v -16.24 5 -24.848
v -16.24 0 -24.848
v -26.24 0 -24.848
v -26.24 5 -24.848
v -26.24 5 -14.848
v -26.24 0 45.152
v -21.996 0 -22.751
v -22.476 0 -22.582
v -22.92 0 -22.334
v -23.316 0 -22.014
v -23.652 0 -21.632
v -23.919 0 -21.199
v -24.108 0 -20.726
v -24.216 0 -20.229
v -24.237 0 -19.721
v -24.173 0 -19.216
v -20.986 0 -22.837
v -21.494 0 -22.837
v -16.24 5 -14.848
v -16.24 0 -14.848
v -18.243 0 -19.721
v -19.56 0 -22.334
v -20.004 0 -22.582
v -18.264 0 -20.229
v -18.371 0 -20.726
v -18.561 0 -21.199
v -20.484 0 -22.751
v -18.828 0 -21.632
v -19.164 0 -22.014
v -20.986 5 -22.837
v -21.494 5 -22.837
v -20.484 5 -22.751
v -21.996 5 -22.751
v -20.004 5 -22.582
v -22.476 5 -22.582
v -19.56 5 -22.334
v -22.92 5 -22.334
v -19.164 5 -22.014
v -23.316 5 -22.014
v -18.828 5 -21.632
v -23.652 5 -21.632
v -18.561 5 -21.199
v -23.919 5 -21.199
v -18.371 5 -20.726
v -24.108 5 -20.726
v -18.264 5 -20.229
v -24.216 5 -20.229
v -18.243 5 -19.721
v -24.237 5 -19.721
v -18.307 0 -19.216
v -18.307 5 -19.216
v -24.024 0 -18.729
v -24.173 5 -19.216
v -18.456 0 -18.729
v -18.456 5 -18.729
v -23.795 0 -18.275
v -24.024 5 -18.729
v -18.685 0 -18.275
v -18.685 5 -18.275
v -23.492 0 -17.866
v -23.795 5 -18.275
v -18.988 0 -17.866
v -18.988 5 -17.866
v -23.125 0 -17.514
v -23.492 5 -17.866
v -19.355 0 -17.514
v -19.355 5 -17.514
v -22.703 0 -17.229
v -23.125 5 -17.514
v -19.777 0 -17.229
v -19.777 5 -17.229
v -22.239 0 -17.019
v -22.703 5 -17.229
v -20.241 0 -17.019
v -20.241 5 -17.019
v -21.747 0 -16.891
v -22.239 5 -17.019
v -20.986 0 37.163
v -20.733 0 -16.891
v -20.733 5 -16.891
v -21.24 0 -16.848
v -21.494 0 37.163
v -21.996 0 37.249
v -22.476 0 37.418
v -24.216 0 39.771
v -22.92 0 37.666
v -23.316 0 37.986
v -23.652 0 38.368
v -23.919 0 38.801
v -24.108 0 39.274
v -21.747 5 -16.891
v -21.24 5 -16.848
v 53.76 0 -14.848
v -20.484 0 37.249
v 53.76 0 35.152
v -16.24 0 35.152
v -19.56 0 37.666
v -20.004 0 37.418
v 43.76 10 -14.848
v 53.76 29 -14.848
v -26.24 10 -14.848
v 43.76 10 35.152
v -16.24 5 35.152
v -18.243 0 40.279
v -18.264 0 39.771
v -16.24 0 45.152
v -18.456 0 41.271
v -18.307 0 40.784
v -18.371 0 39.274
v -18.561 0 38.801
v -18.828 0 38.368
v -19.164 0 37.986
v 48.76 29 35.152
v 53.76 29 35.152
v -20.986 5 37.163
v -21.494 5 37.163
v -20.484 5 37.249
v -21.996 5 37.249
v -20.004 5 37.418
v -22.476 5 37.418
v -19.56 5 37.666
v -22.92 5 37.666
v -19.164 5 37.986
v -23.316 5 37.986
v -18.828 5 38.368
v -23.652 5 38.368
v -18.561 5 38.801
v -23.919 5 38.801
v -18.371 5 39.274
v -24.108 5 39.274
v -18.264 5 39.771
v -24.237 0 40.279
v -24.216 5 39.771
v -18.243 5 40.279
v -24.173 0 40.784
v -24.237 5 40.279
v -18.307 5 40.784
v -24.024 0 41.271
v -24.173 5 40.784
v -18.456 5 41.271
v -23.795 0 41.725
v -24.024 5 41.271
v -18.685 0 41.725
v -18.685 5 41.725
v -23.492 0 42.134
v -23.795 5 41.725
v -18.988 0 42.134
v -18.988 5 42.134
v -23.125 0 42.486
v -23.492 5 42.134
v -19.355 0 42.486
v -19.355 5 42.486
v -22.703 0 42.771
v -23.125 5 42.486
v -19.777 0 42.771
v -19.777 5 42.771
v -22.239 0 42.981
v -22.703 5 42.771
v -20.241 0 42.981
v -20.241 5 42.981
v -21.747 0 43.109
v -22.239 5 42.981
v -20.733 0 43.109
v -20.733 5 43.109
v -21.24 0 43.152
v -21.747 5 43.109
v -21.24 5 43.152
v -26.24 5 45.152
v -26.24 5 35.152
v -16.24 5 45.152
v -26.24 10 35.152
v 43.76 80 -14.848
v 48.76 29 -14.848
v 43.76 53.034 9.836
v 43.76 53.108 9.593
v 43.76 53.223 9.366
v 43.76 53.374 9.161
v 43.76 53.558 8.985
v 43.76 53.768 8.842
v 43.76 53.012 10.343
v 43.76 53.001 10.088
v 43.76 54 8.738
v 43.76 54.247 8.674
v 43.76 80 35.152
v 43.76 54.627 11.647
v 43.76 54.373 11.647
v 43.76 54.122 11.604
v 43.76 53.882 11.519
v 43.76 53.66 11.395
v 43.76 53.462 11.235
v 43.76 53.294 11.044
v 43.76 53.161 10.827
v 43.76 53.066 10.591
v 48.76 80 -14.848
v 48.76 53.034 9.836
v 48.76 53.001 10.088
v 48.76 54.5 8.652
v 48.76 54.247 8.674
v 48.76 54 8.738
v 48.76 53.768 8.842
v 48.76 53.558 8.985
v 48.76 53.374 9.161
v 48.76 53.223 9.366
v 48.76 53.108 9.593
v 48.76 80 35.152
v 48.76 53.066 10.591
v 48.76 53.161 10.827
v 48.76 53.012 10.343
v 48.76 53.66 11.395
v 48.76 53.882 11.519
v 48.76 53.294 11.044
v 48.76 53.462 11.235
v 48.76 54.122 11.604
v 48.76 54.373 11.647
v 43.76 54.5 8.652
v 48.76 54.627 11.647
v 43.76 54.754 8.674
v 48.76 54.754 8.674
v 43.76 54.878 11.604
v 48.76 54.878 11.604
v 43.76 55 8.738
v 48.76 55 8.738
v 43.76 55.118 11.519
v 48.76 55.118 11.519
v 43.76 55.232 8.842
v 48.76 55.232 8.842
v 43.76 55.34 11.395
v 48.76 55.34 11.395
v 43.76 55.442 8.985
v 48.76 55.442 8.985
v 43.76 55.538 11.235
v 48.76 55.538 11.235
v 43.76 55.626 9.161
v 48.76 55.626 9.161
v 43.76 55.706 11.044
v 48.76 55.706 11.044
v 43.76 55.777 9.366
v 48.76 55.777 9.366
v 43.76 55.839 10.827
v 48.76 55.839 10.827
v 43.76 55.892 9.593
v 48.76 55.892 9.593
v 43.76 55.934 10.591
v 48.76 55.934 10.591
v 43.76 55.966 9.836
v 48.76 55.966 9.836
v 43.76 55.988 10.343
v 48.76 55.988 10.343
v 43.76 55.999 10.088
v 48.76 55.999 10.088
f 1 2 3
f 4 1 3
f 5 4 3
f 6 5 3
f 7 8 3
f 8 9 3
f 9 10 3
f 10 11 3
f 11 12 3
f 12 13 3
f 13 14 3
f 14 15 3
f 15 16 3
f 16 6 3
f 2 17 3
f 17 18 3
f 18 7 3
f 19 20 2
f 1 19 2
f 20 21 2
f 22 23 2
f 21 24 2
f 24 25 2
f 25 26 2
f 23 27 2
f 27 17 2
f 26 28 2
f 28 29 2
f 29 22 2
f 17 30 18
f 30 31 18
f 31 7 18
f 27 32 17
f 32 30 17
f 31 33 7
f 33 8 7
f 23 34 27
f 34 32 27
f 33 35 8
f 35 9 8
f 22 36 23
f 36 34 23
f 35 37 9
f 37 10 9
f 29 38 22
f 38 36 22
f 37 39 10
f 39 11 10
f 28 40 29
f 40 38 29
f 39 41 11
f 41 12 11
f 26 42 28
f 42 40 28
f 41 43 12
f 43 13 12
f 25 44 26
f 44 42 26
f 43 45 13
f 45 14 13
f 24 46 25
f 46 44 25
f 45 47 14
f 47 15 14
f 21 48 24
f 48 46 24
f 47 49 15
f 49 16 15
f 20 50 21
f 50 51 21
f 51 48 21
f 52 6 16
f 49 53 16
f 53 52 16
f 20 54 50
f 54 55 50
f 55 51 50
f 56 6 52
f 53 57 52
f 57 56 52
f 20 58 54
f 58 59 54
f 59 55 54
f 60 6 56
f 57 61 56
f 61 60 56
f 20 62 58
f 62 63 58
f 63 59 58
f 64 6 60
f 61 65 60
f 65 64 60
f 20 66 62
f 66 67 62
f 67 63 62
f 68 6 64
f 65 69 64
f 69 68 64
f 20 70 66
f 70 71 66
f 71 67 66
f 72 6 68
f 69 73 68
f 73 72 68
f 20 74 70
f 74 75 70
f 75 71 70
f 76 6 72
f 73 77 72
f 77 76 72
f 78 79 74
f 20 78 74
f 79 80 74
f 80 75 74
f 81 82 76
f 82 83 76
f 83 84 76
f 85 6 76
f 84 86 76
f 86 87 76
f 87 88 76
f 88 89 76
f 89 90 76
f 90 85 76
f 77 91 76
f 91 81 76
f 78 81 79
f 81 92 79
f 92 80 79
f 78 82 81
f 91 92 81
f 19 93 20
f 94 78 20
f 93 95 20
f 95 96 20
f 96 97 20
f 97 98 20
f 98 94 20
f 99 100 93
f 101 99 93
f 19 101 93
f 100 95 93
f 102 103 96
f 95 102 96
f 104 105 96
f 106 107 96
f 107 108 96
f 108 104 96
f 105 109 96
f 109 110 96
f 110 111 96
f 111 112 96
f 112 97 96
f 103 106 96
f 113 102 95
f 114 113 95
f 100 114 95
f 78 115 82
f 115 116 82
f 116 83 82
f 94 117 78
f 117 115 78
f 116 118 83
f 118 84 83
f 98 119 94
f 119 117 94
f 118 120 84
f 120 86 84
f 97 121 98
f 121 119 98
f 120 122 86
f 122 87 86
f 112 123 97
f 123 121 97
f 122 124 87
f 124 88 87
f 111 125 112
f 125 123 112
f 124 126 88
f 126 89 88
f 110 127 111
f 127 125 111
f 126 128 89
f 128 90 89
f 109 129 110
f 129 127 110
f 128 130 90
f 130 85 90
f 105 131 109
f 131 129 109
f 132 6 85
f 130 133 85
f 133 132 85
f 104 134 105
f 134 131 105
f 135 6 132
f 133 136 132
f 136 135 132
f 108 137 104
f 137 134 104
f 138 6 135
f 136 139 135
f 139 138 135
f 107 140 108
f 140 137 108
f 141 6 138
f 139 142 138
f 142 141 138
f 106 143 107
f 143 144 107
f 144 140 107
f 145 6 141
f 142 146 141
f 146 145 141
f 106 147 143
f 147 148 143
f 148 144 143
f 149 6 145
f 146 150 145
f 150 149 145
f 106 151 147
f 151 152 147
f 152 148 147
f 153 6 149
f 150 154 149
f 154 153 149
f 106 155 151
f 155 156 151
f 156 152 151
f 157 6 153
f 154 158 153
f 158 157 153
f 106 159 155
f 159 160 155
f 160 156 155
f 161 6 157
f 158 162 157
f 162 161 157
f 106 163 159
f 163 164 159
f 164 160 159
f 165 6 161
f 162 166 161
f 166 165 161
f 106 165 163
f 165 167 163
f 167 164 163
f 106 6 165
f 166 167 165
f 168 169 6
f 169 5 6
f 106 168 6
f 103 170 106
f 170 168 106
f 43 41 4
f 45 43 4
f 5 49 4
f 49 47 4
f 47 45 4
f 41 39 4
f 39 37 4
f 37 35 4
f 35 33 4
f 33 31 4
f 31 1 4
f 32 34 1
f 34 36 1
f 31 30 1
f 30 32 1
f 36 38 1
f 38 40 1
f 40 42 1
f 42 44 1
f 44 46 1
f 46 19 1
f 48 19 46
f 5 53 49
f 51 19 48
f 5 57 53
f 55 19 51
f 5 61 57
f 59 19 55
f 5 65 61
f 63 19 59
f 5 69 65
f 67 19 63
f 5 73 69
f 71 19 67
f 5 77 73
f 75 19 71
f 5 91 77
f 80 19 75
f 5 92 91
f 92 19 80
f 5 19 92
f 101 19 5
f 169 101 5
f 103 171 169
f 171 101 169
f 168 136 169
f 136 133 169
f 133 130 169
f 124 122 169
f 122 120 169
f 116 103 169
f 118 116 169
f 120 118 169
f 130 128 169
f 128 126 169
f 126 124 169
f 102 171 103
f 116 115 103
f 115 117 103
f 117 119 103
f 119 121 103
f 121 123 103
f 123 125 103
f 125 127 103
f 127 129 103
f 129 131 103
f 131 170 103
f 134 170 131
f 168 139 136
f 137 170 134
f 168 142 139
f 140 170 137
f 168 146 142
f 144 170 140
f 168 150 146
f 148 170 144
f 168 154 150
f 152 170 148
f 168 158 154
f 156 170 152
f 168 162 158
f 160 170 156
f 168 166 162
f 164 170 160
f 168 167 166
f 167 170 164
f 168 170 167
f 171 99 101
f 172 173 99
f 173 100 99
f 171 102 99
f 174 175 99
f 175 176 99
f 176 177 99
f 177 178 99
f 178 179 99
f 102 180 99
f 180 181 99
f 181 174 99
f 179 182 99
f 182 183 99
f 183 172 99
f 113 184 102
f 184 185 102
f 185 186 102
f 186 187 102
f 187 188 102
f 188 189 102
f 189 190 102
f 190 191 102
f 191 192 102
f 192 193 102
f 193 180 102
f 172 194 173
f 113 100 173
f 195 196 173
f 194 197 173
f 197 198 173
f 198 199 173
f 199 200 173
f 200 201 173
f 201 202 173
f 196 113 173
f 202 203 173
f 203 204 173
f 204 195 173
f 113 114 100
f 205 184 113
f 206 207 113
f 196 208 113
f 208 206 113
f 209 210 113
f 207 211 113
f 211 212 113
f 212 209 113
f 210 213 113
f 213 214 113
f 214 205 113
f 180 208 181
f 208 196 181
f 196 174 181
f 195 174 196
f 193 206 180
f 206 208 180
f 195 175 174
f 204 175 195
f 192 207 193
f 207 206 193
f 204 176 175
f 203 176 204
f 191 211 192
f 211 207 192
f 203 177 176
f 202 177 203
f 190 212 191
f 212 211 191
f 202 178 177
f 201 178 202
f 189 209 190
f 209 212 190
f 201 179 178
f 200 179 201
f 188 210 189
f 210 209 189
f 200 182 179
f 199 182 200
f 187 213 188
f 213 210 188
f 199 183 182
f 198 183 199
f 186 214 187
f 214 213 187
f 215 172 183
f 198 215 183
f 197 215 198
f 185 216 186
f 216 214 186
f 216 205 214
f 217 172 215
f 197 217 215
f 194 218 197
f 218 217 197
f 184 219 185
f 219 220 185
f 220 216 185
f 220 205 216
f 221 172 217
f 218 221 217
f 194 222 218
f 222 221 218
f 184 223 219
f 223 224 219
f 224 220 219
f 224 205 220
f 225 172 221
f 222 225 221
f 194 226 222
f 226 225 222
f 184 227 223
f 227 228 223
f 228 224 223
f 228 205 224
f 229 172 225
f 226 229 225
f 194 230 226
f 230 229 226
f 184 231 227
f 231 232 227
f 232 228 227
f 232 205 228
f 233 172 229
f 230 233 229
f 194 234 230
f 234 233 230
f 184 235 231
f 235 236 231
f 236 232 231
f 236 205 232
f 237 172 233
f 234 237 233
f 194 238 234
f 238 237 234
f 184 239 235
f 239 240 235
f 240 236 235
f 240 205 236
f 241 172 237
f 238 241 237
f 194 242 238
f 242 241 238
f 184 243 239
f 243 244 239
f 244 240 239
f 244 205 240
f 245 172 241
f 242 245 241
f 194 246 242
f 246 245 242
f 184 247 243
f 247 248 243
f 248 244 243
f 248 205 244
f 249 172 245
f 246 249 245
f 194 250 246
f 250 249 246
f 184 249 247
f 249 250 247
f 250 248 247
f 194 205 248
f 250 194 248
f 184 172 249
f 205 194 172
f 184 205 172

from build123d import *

# Parameters (mm, degrees)
SKETCH1_W           = 80
SKETCH1_H           = 50
BOSS_EXTRUDE1_DEPTH = 10
SKETCH2_W           = 10
SKETCH2_H           = 10
BOSS_EXTRUDE2_DEPTH = 10
SKETCH3_W           = 10
SKETCH3_H           = 10
CUT_EXTRUDE1_DEPTH  = 5
SKETCH4_R           = 3
CUT_EXTRUDE2_DEPTH  = 5
SKETCH5_W           = 10
SKETCH5_H           = 10
BOSS_EXTRUDE3_DEPTH = 10
SKETCH6_W           = 10
SKETCH6_H           = 10
CUT_EXTRUDE3_DEPTH  = 5
SKETCH7_R           = 3
CUT_EXTRUDE4_DEPTH  = 5
SKETCH10_W          = 10
SKETCH10_H          = 50
BOSS_EXTRUDE4_DEPTH = 70
SKETCH11_W          = 50
SKETCH11_H          = 51
CUT_EXTRUDE5_DEPTH  = 5
SKETCH12_R          = 1.5
CUT_EXTRUDE7_DEPTH  = 10


with BuildPart() as part:
    # Sketch1 → Boss-Extrude1 (new body)
    with BuildSketch(Plane(origin=(0, 0, 0), x_dir=(1, 0, 0), z_dir=(0, 1, 0))):
        with Locations((13.76, -10.152)):
            Rectangle(SKETCH1_W, SKETCH1_H)
    extrude(amount=BOSS_EXTRUDE1_DEPTH)

    # Sketch2 → Boss-Extrude2 (add)
    with BuildSketch(Plane.XY.offset(35.152)):
        with Locations((-21.24, 5)):
            Rectangle(SKETCH2_W, SKETCH2_H)
    extrude(amount=BOSS_EXTRUDE2_DEPTH)

    # Sketch3 → Cut-Extrude1 (cut)
    with BuildSketch(Plane(origin=(0, 10, 0), x_dir=(1, 0, 0), z_dir=(0, 1, 0))):
        with Locations((-21.24, -40.152)):
            Rectangle(SKETCH3_W, SKETCH3_H)
    extrude(amount=-CUT_EXTRUDE1_DEPTH, mode=Mode.SUBTRACT)

    # Sketch4 → Cut-Extrude2 (cut)
    with BuildSketch(Plane(origin=(0, 5, 0), x_dir=(1, 0, 0), z_dir=(0, 1, 0))):
        with Locations((-21.24, -40.152)):
            Circle(SKETCH4_R)
    extrude(amount=-CUT_EXTRUDE2_DEPTH, mode=Mode.SUBTRACT)

    # Sketch5 → Boss-Extrude3 (add)
    with BuildSketch(Plane(origin=(0, 0, -14.848), x_dir=(-1, 0, 0), z_dir=(0, 0, -1))):
        with Locations((21.24, 5)):
            Rectangle(SKETCH5_W, SKETCH5_H)
    extrude(amount=BOSS_EXTRUDE3_DEPTH)

    # Sketch6 → Cut-Extrude3 (cut)
    with BuildSketch(Plane(origin=(0, 10, 0), x_dir=(1, 0, 0), z_dir=(0, 1, 0))):
        with Locations((-21.24, 19.848)):
            Rectangle(SKETCH6_W, SKETCH6_H)
    extrude(amount=-CUT_EXTRUDE3_DEPTH, mode=Mode.SUBTRACT)

    # Sketch7 → Cut-Extrude4 (cut)
    with BuildSketch(Plane(origin=(0, 5, 0), x_dir=(1, 0, 0), z_dir=(0, 1, 0))):
        with Locations((-21.24, 19.848)):
            Circle(SKETCH7_R)
    extrude(amount=-CUT_EXTRUDE4_DEPTH, mode=Mode.SUBTRACT)

    # Sketch10 → Boss-Extrude4 (add)
    with BuildSketch(Plane(origin=(0, 10, 0), x_dir=(1, 0, 0), z_dir=(0, 1, 0))):
        with Locations((48.76, -10.152)):
            Rectangle(SKETCH10_W, SKETCH10_H)
    extrude(amount=BOSS_EXTRUDE4_DEPTH)

    # Sketch11 → Cut-Extrude5 (cut)
    with BuildSketch(Plane(origin=(53.76, 0, 0), x_dir=(0, 0, -1), z_dir=(1, 0, 0))):
        with Locations((-10.152, 54.5)):
            Rectangle(SKETCH11_W, SKETCH11_H)
    extrude(amount=-CUT_EXTRUDE5_DEPTH, mode=Mode.SUBTRACT)

    # Sketch12 → Cut-Extrude7 (cut)
    with BuildSketch(Plane(origin=(48.76, 0, 0), x_dir=(0, 0, -1), z_dir=(1, 0, 0))):
        with Locations((-10.152, 54.5)):
            Circle(SKETCH12_R)
    extrude(amount=-CUT_EXTRUDE7_DEPTH, mode=Mode.SUBTRACT)


solid = part.part
